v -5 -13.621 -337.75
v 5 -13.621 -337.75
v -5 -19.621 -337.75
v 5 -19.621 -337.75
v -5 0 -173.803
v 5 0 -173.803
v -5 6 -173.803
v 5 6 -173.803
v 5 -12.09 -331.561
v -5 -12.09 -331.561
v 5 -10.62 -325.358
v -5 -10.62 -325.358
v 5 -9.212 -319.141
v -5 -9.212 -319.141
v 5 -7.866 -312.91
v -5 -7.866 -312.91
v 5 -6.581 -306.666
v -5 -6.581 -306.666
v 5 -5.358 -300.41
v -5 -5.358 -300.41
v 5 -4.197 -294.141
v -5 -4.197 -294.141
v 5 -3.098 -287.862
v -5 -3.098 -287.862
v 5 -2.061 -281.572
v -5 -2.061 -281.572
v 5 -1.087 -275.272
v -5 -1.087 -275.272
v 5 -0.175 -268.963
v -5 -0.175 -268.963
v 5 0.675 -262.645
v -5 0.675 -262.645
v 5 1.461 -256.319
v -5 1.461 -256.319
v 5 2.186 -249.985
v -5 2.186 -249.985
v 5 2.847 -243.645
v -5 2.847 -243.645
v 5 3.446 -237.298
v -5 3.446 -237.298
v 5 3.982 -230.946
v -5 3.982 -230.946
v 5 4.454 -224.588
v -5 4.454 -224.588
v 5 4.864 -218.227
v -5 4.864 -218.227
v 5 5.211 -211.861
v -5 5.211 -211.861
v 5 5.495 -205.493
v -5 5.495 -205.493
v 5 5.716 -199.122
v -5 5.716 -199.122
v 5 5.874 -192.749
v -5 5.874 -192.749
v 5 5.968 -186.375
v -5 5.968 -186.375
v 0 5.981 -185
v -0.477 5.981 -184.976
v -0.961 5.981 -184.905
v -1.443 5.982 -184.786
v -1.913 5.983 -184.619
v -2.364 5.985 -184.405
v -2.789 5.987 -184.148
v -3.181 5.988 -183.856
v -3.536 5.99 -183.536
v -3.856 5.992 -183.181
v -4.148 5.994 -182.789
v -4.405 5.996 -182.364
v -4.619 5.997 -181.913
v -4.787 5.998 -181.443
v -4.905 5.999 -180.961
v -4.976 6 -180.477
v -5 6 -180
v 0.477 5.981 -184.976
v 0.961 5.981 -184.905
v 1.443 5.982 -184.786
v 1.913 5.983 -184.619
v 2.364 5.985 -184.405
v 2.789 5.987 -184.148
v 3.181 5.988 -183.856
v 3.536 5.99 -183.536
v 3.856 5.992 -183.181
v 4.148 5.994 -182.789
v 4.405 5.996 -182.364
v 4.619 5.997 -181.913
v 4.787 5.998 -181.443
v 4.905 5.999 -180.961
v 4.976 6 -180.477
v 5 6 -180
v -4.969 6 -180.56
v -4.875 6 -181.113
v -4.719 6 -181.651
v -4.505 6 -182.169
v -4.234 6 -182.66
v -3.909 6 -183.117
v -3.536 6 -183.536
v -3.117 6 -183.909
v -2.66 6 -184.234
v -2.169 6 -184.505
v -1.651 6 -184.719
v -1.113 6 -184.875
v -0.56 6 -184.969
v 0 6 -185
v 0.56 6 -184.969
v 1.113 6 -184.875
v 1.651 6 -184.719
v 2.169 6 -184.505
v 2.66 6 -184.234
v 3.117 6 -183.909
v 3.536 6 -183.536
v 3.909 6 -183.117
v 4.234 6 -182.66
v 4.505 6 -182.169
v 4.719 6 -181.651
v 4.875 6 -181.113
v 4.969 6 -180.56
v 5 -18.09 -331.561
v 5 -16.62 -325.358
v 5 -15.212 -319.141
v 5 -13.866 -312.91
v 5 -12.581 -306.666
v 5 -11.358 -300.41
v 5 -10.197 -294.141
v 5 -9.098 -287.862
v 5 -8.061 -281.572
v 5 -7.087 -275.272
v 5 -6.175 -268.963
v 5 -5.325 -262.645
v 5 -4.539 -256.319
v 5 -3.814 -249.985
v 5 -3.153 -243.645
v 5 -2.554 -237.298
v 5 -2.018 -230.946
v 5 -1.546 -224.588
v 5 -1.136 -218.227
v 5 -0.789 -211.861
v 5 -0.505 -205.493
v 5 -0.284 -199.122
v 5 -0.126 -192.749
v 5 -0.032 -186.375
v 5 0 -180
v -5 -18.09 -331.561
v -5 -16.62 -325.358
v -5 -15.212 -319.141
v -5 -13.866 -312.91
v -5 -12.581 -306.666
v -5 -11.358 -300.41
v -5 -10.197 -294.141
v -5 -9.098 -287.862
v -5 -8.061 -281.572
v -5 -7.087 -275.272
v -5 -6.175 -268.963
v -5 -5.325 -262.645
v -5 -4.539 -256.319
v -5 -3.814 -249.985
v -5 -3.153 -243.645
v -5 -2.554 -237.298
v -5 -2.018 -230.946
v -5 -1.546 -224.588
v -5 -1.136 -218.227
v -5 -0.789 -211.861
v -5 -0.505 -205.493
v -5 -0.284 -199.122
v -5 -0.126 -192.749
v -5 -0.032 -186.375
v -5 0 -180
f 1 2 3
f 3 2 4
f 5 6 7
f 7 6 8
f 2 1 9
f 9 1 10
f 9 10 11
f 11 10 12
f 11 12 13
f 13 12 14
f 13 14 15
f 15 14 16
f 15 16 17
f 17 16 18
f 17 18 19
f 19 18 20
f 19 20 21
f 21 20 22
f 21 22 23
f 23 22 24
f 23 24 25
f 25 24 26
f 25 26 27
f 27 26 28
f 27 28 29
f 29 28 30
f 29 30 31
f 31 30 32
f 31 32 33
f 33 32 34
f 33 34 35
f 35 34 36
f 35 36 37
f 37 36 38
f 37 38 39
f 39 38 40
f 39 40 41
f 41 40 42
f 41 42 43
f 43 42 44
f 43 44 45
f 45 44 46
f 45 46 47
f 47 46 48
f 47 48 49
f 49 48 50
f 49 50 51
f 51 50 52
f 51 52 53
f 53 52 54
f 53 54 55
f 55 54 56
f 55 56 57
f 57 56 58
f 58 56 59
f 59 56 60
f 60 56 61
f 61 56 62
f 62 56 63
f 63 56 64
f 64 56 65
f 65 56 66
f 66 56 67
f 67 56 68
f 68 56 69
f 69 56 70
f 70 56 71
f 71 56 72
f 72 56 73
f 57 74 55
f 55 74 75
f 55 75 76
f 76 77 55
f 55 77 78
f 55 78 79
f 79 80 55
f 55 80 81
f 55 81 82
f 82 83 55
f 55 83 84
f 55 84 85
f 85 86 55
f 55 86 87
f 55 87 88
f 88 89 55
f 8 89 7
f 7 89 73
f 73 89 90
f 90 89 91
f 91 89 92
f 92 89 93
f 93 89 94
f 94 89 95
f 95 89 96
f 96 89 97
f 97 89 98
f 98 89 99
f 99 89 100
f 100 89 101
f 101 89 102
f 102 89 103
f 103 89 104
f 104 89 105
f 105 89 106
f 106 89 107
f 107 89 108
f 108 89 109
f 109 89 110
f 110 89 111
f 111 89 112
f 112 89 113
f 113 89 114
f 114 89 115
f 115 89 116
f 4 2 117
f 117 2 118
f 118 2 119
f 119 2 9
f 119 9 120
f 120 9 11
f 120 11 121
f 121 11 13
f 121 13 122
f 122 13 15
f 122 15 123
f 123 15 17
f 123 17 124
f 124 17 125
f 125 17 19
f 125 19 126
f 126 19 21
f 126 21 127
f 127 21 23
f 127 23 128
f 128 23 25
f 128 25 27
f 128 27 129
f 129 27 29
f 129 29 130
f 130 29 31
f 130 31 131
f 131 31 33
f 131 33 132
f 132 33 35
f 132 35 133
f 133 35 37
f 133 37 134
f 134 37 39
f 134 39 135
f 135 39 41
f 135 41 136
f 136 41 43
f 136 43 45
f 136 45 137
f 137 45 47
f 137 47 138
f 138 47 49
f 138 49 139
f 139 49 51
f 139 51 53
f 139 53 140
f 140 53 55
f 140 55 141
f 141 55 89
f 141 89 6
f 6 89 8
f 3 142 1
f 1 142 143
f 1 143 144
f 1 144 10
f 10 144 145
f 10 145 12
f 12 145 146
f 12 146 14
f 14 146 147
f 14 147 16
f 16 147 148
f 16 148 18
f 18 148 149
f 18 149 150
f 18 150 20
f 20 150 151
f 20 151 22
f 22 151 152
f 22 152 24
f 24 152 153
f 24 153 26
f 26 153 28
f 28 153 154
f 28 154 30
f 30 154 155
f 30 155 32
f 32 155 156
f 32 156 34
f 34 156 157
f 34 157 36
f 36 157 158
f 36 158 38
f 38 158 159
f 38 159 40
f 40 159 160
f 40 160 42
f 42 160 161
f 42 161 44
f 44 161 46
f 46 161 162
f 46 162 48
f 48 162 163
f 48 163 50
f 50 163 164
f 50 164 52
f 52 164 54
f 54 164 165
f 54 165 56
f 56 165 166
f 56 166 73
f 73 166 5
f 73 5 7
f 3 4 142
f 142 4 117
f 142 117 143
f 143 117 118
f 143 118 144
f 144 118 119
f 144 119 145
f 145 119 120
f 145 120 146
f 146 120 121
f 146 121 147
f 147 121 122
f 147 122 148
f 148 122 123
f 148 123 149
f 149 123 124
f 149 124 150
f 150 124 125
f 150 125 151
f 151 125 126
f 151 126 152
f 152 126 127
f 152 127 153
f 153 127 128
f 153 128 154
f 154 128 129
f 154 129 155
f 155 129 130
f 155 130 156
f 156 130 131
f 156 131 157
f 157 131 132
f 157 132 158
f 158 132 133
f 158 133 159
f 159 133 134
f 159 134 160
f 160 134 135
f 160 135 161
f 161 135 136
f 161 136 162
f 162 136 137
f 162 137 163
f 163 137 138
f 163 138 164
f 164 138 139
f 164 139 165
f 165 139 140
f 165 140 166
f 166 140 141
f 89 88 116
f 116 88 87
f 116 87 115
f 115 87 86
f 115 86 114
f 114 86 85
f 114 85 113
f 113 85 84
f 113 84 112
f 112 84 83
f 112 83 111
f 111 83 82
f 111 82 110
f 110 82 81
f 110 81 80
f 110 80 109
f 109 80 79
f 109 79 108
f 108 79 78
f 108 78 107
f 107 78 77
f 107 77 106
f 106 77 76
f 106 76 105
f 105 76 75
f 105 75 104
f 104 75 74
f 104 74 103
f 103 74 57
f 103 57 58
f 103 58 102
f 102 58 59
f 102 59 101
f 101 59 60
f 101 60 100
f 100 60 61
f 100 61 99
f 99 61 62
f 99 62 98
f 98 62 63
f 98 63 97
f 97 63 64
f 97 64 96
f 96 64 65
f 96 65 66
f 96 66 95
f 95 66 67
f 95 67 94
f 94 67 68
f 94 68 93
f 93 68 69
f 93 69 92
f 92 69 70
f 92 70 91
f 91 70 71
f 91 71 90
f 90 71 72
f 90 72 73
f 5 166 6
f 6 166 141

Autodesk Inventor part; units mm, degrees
ref_plane "YZ Plane" through (0, 0, 0) normal (1, 0, 0) x (0, 1, 0)
ref_plane "XZ Plane" through (0, 0, 0) normal (0, 1, 0) x (-1, 0, 0)
ref_plane "XY Plane" through (0, 0, 0) normal (0, 0, 1) x (1, 0, 0)
sketch "Sketch1" plane through (0, 0, 0) normal (0, 1, 0) x (-1, 0, 0)
  line L0 (0, 0) -> (0, -180) construction
  line L1 (5, 0) -> (5, -180)
  line L2 (-5, -180) -> (-5, 0)
  arc A0 (5, 0) -> (-5, 0) centre (0, 0) ccw
  arc A1 (-5, -180) -> (5, -180) centre (0, -180) ccw
  circle A2 centre (0, 0) radius 1.65
  line L3 (0, -40) -> (0, -140) construction
  line L4 (1.65, -40) -> (1.65, -140)
  line L5 (-1.65, -140) -> (-1.65, -40)
  arc A3 (1.65, -40) -> (-1.65, -40) centre (0, -40) ccw
  arc A4 (-1.65, -140) -> (1.65, -140) centre (0, -140) ccw
  point P0 (0, -90)
  point P1 (0, -90)
  dimension "d0" = 180
  dimension "d1" = 10
  dimension "d2" = 3.3
  dimension "d3" = 40
  dimension "d5" = 140
  dimension "d6" = 3.3
extrude "Extrusion1" add sketch "Sketch1" along normal blind 6
sketch "Sketch2" plane through (5, 0, 0) normal (1, 0, 0) x (0, 0, -1)
  line L0 (180, 0) -> (180, 6) projected
  line L1 (0, 0) -> (180, 0) projected
  line L2 (180, 0) -> (180, 6) projected
  line L3 (0, 6) -> (180, 6) projected
  line L4 (0, 0) -> (0, 6) projected
  line L5 (180, 0) -> (180, 0) projected
  line L6 (180, 0) -> (180, 6) projected
  line L7 (180, 6) -> (180, 6) projected
  line L8 (180, 0) -> (180, 6) projected
  line L9 (180, 0) -> (0, 0) projected
  arc A0 (498.004, -84) -> (180, 0) centre (180, -643.9437) ccw
  line L10 (180, 6) -> (0, 6) projected
  arc A1 (498.004, -78) -> (180, 6) centre (180, -637.9437) ccw
  line L11 (498.004, -78) -> (498.004, -84)
  line L12 (0, 0) -> (180, 0) projected
  dimension "d9" = 6
  dimension "d10" = 498.004
  dimension "d11" = 90
extrude "Extrusion2" add sketch "Sketch2" against normal blind 10 contours L0 A1 L11 A0
fillet "Fillet1" radius 2 4 edges at (0, -78, -498.004) (5, -81, -498.004) (-5, -81, -498.004) (0, -84, -498.004)
sketch "Sketch3" plane through (0, 6, 0) normal (0, 1, 0) x (1, 0, 0)
  line L0 (-25.1236, -17.4365) -> (19.1239, -17.4365)
  line L1 (19.1239, -17.4365) -> (19.1239, 173.8027)
  line L2 (19.1239, 173.8027) -> (-25.1236, 173.8027)
  line L3 (-25.1236, 173.8027) -> (-25.1236, -17.4365)
  line L4 (-48.0471, -35.7333) -> (42.457, -35.7333)
  line L5 (42.457, -35.7333) -> (42.457, 337.7497)
  line L6 (42.457, 337.7497) -> (-48.0471, 337.7497)
  line L7 (-48.0471, 337.7497) -> (-48.0471, -35.7333)
  line L8 (-102.0639, -92.3443) -> (98.6132, -92.3443)
  line L9 (98.6132, -92.3443) -> (98.6132, 617.9416)
  line L10 (98.6132, 617.9416) -> (-102.0639, 617.9416)
  line L11 (-102.0639, 617.9416) -> (-102.0639, -92.3443)
  point P0 (0, 0)
extrude "Extrusion3" cut sketch "Sketch3" against normal blind 100
properties part number "Part_8_p2"
